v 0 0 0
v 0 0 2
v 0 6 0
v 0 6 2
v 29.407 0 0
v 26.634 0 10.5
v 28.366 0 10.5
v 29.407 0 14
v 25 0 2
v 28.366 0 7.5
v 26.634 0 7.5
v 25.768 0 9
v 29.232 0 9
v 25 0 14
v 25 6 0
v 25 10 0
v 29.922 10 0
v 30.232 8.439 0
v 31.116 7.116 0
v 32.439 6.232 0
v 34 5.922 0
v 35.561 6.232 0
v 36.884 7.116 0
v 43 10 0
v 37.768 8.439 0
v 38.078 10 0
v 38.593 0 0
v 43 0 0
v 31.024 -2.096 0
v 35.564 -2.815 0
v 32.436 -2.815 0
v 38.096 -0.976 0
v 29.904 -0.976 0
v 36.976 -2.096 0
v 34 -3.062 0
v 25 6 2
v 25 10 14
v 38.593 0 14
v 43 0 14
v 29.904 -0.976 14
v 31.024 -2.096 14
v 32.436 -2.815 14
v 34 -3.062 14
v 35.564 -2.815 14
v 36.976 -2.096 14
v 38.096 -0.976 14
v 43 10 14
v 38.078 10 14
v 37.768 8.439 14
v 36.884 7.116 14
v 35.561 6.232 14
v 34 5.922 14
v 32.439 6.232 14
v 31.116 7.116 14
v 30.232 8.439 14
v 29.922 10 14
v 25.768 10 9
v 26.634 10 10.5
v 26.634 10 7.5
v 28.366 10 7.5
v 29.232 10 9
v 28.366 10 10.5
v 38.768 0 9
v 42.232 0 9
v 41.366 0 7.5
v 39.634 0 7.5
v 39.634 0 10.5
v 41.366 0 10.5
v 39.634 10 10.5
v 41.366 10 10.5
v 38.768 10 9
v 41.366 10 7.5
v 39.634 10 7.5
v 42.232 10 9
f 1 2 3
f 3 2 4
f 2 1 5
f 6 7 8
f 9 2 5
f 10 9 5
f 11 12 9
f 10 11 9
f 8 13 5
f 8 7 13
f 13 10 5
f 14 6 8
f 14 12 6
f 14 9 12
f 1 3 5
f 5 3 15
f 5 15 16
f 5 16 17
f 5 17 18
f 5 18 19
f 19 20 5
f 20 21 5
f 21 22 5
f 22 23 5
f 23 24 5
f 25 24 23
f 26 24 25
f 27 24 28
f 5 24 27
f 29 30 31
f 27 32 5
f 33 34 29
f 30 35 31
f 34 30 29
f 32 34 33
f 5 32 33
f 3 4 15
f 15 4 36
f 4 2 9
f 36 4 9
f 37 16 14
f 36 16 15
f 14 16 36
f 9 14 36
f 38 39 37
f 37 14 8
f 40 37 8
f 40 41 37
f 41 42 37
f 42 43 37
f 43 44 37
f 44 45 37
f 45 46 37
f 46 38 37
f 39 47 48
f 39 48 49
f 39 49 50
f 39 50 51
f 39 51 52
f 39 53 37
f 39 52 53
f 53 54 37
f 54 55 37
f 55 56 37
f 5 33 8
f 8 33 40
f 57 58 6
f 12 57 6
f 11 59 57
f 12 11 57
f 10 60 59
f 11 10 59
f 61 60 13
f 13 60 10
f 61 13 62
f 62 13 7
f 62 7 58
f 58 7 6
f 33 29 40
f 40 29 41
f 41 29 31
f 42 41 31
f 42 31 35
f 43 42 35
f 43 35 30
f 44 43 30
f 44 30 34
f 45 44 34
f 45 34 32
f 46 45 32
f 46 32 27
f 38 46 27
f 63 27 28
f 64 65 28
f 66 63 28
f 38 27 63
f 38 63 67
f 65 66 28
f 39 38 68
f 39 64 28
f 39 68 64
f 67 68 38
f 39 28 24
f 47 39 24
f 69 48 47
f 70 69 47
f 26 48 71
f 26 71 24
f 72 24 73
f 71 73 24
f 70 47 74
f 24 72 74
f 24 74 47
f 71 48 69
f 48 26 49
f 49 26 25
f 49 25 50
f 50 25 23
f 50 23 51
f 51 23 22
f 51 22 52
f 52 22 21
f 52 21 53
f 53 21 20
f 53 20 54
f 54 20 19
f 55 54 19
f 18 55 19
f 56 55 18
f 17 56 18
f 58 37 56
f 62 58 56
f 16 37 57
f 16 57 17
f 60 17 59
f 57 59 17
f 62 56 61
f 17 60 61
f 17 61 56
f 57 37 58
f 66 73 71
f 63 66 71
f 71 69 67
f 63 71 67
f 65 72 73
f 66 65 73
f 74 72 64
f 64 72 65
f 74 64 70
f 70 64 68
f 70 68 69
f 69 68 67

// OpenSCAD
/*
-----------------------------------------------------------------------------------
 signaling strip for optical endstop
 Z-endstop
 can be attached to platform 
 for my custom Mendel90

 (c) 2013 by Stemer114
 License: licensed under the Creative Commons - GNU GPL license.
          http://www.gnu.org/licenses/gpl-2.0.html
-----------------------------------------------------------------------------------
 Credits: 
 
 MCAD Library - Parametric Involute Bevel and Spur Gears by GregFrost
 It is licensed under the Creative Commons - GNU LGPL 2.1 license.
 http://www.thingiverse.com/thing:3575 and http://www.thingiverse.com/thing:3752

-----------------------------------------------------------------------------------
*/

//-----------------------------------------------------------------------------------
//libraries
//-----------------------------------------------------------------------------------
use <MCAD/polyholes.scad>

//-----------------------------------------------------------------------------------
//display settings
//-----------------------------------------------------------------------------------

//color settings

//-----------------------------------------------------------------------------------
//global configuration settings
//-----------------------------------------------------------------------------------
de = 0.1; //delta param, so differences are scaled and do not become manifold
fn_hole = 12;  //fn setting for round holes/bores (polyhole)
ex = 0;  //offset for Explosivdarstellung, set to 0 for none

//-----------------------------------------------------------------------------------
//parametric settings
//-----------------------------------------------------------------------------------

//holding block
P21 = 8;    //rod diameter
P22 = 5;    //block width beside rod
P23 = 10;   //block depth
P24 = 14;   //block length in rod direction
P25 = 3;    //dia for cable tie bore
P26 = 5;    //offset of cable tie bore from left side (here: upper side)
P27 = 10;   //dia of notch for tigthening cable tie
P28 = 3;    //offset of notch at back of holding block

//strip
P11 = 6;    //width
P12 = 30-P22;   //length (up to rod underside)
P13 = 2;  //thickness




//-----------------------------------------------------------------------------------
// main rendering
//-----------------------------------------------------------------------------------

StripZ();


//-----------------------------------------------------------------------------------
// modules
//-----------------------------------------------------------------------------------


module StripZ()
{
    difference()
    {
        union()
        {
            //strip
           translate([0, 0, 0])
               cube([P12, P11, P13], center=false);

           //holding block
           translate([P12, 0, 0])
               cube([P21+2*P22, P23, P24], center=false);

           //notch for tigthening cable tie
            translate([P12+P22+P21/2, P27/2-P28, 0])
                polyhole(h=P24, d=P27);


        }

        union()
        {
            //cutout in block for rod
            translate([P12+P22+P21/2, P23, -de])
                //rotate([0, 0, 0])
                polyhole(h=P24+2*de, d=P21);

            //upper cable tie bore (here: right bore)
            translate([P12+P22+P21+P22/2, -de, P24-P26])
                rotate([-90, 0, 0])
                polyhole(h=P23+2*de, d=P25);

            //lower cable tie bore (here: left bore)
            translate([P12+P22/2, -de, P24-P26])
                rotate([-90, 0, 0])
                polyhole(h=P23+2*de, d=P25);

        }
    }
}



module Strip()
{
    difference()
    {
        union()
        {
            //holder
           cube([P2+P3, P1, P6], center=false);

           //strip upper part
           translate([P2+P3, (P1-P5)/2, 0])
               cube([P4-P41, P5, P6], center=false);

           //strip lower part (thinner)
           translate([P2+P3+P4-P41, (P1-P5)/2, 0])
               cube([P41, P5, P61], center=false);


           //bracket transversal
           translate([P2, 0, 0])
               cube([P3, P1, P7], center=false);

           //bracket longitudinal
           translate([P2+P3, P1/2-P3/2, 0])
               cube([P4-P41, P3, P7], center=false);


        }

        union()
        {
            //slot hole left
            hull() {
            translate([P2/2, P8+P9/2, -de])
                polyhole(P3+2*de, P9);
            translate([P2/2, P8+P10-P9/2, -de])
                polyhole(P3+2*de, P9);
            }

            //slot hole right 
            translate([0, -P8+P1-P8-P10])
            hull() {
            translate([P2/2, P8+P9/2, -de])
                polyhole(P3+2*de, P9);
            translate([P2/2, P8+P10-P9/2, -de])
                polyhole(P3+2*de, P9);
            }


        }
    }
}


//-----------------------------------------------------------------------------------
// utility functions
//-----------------------------------------------------------------------------------
